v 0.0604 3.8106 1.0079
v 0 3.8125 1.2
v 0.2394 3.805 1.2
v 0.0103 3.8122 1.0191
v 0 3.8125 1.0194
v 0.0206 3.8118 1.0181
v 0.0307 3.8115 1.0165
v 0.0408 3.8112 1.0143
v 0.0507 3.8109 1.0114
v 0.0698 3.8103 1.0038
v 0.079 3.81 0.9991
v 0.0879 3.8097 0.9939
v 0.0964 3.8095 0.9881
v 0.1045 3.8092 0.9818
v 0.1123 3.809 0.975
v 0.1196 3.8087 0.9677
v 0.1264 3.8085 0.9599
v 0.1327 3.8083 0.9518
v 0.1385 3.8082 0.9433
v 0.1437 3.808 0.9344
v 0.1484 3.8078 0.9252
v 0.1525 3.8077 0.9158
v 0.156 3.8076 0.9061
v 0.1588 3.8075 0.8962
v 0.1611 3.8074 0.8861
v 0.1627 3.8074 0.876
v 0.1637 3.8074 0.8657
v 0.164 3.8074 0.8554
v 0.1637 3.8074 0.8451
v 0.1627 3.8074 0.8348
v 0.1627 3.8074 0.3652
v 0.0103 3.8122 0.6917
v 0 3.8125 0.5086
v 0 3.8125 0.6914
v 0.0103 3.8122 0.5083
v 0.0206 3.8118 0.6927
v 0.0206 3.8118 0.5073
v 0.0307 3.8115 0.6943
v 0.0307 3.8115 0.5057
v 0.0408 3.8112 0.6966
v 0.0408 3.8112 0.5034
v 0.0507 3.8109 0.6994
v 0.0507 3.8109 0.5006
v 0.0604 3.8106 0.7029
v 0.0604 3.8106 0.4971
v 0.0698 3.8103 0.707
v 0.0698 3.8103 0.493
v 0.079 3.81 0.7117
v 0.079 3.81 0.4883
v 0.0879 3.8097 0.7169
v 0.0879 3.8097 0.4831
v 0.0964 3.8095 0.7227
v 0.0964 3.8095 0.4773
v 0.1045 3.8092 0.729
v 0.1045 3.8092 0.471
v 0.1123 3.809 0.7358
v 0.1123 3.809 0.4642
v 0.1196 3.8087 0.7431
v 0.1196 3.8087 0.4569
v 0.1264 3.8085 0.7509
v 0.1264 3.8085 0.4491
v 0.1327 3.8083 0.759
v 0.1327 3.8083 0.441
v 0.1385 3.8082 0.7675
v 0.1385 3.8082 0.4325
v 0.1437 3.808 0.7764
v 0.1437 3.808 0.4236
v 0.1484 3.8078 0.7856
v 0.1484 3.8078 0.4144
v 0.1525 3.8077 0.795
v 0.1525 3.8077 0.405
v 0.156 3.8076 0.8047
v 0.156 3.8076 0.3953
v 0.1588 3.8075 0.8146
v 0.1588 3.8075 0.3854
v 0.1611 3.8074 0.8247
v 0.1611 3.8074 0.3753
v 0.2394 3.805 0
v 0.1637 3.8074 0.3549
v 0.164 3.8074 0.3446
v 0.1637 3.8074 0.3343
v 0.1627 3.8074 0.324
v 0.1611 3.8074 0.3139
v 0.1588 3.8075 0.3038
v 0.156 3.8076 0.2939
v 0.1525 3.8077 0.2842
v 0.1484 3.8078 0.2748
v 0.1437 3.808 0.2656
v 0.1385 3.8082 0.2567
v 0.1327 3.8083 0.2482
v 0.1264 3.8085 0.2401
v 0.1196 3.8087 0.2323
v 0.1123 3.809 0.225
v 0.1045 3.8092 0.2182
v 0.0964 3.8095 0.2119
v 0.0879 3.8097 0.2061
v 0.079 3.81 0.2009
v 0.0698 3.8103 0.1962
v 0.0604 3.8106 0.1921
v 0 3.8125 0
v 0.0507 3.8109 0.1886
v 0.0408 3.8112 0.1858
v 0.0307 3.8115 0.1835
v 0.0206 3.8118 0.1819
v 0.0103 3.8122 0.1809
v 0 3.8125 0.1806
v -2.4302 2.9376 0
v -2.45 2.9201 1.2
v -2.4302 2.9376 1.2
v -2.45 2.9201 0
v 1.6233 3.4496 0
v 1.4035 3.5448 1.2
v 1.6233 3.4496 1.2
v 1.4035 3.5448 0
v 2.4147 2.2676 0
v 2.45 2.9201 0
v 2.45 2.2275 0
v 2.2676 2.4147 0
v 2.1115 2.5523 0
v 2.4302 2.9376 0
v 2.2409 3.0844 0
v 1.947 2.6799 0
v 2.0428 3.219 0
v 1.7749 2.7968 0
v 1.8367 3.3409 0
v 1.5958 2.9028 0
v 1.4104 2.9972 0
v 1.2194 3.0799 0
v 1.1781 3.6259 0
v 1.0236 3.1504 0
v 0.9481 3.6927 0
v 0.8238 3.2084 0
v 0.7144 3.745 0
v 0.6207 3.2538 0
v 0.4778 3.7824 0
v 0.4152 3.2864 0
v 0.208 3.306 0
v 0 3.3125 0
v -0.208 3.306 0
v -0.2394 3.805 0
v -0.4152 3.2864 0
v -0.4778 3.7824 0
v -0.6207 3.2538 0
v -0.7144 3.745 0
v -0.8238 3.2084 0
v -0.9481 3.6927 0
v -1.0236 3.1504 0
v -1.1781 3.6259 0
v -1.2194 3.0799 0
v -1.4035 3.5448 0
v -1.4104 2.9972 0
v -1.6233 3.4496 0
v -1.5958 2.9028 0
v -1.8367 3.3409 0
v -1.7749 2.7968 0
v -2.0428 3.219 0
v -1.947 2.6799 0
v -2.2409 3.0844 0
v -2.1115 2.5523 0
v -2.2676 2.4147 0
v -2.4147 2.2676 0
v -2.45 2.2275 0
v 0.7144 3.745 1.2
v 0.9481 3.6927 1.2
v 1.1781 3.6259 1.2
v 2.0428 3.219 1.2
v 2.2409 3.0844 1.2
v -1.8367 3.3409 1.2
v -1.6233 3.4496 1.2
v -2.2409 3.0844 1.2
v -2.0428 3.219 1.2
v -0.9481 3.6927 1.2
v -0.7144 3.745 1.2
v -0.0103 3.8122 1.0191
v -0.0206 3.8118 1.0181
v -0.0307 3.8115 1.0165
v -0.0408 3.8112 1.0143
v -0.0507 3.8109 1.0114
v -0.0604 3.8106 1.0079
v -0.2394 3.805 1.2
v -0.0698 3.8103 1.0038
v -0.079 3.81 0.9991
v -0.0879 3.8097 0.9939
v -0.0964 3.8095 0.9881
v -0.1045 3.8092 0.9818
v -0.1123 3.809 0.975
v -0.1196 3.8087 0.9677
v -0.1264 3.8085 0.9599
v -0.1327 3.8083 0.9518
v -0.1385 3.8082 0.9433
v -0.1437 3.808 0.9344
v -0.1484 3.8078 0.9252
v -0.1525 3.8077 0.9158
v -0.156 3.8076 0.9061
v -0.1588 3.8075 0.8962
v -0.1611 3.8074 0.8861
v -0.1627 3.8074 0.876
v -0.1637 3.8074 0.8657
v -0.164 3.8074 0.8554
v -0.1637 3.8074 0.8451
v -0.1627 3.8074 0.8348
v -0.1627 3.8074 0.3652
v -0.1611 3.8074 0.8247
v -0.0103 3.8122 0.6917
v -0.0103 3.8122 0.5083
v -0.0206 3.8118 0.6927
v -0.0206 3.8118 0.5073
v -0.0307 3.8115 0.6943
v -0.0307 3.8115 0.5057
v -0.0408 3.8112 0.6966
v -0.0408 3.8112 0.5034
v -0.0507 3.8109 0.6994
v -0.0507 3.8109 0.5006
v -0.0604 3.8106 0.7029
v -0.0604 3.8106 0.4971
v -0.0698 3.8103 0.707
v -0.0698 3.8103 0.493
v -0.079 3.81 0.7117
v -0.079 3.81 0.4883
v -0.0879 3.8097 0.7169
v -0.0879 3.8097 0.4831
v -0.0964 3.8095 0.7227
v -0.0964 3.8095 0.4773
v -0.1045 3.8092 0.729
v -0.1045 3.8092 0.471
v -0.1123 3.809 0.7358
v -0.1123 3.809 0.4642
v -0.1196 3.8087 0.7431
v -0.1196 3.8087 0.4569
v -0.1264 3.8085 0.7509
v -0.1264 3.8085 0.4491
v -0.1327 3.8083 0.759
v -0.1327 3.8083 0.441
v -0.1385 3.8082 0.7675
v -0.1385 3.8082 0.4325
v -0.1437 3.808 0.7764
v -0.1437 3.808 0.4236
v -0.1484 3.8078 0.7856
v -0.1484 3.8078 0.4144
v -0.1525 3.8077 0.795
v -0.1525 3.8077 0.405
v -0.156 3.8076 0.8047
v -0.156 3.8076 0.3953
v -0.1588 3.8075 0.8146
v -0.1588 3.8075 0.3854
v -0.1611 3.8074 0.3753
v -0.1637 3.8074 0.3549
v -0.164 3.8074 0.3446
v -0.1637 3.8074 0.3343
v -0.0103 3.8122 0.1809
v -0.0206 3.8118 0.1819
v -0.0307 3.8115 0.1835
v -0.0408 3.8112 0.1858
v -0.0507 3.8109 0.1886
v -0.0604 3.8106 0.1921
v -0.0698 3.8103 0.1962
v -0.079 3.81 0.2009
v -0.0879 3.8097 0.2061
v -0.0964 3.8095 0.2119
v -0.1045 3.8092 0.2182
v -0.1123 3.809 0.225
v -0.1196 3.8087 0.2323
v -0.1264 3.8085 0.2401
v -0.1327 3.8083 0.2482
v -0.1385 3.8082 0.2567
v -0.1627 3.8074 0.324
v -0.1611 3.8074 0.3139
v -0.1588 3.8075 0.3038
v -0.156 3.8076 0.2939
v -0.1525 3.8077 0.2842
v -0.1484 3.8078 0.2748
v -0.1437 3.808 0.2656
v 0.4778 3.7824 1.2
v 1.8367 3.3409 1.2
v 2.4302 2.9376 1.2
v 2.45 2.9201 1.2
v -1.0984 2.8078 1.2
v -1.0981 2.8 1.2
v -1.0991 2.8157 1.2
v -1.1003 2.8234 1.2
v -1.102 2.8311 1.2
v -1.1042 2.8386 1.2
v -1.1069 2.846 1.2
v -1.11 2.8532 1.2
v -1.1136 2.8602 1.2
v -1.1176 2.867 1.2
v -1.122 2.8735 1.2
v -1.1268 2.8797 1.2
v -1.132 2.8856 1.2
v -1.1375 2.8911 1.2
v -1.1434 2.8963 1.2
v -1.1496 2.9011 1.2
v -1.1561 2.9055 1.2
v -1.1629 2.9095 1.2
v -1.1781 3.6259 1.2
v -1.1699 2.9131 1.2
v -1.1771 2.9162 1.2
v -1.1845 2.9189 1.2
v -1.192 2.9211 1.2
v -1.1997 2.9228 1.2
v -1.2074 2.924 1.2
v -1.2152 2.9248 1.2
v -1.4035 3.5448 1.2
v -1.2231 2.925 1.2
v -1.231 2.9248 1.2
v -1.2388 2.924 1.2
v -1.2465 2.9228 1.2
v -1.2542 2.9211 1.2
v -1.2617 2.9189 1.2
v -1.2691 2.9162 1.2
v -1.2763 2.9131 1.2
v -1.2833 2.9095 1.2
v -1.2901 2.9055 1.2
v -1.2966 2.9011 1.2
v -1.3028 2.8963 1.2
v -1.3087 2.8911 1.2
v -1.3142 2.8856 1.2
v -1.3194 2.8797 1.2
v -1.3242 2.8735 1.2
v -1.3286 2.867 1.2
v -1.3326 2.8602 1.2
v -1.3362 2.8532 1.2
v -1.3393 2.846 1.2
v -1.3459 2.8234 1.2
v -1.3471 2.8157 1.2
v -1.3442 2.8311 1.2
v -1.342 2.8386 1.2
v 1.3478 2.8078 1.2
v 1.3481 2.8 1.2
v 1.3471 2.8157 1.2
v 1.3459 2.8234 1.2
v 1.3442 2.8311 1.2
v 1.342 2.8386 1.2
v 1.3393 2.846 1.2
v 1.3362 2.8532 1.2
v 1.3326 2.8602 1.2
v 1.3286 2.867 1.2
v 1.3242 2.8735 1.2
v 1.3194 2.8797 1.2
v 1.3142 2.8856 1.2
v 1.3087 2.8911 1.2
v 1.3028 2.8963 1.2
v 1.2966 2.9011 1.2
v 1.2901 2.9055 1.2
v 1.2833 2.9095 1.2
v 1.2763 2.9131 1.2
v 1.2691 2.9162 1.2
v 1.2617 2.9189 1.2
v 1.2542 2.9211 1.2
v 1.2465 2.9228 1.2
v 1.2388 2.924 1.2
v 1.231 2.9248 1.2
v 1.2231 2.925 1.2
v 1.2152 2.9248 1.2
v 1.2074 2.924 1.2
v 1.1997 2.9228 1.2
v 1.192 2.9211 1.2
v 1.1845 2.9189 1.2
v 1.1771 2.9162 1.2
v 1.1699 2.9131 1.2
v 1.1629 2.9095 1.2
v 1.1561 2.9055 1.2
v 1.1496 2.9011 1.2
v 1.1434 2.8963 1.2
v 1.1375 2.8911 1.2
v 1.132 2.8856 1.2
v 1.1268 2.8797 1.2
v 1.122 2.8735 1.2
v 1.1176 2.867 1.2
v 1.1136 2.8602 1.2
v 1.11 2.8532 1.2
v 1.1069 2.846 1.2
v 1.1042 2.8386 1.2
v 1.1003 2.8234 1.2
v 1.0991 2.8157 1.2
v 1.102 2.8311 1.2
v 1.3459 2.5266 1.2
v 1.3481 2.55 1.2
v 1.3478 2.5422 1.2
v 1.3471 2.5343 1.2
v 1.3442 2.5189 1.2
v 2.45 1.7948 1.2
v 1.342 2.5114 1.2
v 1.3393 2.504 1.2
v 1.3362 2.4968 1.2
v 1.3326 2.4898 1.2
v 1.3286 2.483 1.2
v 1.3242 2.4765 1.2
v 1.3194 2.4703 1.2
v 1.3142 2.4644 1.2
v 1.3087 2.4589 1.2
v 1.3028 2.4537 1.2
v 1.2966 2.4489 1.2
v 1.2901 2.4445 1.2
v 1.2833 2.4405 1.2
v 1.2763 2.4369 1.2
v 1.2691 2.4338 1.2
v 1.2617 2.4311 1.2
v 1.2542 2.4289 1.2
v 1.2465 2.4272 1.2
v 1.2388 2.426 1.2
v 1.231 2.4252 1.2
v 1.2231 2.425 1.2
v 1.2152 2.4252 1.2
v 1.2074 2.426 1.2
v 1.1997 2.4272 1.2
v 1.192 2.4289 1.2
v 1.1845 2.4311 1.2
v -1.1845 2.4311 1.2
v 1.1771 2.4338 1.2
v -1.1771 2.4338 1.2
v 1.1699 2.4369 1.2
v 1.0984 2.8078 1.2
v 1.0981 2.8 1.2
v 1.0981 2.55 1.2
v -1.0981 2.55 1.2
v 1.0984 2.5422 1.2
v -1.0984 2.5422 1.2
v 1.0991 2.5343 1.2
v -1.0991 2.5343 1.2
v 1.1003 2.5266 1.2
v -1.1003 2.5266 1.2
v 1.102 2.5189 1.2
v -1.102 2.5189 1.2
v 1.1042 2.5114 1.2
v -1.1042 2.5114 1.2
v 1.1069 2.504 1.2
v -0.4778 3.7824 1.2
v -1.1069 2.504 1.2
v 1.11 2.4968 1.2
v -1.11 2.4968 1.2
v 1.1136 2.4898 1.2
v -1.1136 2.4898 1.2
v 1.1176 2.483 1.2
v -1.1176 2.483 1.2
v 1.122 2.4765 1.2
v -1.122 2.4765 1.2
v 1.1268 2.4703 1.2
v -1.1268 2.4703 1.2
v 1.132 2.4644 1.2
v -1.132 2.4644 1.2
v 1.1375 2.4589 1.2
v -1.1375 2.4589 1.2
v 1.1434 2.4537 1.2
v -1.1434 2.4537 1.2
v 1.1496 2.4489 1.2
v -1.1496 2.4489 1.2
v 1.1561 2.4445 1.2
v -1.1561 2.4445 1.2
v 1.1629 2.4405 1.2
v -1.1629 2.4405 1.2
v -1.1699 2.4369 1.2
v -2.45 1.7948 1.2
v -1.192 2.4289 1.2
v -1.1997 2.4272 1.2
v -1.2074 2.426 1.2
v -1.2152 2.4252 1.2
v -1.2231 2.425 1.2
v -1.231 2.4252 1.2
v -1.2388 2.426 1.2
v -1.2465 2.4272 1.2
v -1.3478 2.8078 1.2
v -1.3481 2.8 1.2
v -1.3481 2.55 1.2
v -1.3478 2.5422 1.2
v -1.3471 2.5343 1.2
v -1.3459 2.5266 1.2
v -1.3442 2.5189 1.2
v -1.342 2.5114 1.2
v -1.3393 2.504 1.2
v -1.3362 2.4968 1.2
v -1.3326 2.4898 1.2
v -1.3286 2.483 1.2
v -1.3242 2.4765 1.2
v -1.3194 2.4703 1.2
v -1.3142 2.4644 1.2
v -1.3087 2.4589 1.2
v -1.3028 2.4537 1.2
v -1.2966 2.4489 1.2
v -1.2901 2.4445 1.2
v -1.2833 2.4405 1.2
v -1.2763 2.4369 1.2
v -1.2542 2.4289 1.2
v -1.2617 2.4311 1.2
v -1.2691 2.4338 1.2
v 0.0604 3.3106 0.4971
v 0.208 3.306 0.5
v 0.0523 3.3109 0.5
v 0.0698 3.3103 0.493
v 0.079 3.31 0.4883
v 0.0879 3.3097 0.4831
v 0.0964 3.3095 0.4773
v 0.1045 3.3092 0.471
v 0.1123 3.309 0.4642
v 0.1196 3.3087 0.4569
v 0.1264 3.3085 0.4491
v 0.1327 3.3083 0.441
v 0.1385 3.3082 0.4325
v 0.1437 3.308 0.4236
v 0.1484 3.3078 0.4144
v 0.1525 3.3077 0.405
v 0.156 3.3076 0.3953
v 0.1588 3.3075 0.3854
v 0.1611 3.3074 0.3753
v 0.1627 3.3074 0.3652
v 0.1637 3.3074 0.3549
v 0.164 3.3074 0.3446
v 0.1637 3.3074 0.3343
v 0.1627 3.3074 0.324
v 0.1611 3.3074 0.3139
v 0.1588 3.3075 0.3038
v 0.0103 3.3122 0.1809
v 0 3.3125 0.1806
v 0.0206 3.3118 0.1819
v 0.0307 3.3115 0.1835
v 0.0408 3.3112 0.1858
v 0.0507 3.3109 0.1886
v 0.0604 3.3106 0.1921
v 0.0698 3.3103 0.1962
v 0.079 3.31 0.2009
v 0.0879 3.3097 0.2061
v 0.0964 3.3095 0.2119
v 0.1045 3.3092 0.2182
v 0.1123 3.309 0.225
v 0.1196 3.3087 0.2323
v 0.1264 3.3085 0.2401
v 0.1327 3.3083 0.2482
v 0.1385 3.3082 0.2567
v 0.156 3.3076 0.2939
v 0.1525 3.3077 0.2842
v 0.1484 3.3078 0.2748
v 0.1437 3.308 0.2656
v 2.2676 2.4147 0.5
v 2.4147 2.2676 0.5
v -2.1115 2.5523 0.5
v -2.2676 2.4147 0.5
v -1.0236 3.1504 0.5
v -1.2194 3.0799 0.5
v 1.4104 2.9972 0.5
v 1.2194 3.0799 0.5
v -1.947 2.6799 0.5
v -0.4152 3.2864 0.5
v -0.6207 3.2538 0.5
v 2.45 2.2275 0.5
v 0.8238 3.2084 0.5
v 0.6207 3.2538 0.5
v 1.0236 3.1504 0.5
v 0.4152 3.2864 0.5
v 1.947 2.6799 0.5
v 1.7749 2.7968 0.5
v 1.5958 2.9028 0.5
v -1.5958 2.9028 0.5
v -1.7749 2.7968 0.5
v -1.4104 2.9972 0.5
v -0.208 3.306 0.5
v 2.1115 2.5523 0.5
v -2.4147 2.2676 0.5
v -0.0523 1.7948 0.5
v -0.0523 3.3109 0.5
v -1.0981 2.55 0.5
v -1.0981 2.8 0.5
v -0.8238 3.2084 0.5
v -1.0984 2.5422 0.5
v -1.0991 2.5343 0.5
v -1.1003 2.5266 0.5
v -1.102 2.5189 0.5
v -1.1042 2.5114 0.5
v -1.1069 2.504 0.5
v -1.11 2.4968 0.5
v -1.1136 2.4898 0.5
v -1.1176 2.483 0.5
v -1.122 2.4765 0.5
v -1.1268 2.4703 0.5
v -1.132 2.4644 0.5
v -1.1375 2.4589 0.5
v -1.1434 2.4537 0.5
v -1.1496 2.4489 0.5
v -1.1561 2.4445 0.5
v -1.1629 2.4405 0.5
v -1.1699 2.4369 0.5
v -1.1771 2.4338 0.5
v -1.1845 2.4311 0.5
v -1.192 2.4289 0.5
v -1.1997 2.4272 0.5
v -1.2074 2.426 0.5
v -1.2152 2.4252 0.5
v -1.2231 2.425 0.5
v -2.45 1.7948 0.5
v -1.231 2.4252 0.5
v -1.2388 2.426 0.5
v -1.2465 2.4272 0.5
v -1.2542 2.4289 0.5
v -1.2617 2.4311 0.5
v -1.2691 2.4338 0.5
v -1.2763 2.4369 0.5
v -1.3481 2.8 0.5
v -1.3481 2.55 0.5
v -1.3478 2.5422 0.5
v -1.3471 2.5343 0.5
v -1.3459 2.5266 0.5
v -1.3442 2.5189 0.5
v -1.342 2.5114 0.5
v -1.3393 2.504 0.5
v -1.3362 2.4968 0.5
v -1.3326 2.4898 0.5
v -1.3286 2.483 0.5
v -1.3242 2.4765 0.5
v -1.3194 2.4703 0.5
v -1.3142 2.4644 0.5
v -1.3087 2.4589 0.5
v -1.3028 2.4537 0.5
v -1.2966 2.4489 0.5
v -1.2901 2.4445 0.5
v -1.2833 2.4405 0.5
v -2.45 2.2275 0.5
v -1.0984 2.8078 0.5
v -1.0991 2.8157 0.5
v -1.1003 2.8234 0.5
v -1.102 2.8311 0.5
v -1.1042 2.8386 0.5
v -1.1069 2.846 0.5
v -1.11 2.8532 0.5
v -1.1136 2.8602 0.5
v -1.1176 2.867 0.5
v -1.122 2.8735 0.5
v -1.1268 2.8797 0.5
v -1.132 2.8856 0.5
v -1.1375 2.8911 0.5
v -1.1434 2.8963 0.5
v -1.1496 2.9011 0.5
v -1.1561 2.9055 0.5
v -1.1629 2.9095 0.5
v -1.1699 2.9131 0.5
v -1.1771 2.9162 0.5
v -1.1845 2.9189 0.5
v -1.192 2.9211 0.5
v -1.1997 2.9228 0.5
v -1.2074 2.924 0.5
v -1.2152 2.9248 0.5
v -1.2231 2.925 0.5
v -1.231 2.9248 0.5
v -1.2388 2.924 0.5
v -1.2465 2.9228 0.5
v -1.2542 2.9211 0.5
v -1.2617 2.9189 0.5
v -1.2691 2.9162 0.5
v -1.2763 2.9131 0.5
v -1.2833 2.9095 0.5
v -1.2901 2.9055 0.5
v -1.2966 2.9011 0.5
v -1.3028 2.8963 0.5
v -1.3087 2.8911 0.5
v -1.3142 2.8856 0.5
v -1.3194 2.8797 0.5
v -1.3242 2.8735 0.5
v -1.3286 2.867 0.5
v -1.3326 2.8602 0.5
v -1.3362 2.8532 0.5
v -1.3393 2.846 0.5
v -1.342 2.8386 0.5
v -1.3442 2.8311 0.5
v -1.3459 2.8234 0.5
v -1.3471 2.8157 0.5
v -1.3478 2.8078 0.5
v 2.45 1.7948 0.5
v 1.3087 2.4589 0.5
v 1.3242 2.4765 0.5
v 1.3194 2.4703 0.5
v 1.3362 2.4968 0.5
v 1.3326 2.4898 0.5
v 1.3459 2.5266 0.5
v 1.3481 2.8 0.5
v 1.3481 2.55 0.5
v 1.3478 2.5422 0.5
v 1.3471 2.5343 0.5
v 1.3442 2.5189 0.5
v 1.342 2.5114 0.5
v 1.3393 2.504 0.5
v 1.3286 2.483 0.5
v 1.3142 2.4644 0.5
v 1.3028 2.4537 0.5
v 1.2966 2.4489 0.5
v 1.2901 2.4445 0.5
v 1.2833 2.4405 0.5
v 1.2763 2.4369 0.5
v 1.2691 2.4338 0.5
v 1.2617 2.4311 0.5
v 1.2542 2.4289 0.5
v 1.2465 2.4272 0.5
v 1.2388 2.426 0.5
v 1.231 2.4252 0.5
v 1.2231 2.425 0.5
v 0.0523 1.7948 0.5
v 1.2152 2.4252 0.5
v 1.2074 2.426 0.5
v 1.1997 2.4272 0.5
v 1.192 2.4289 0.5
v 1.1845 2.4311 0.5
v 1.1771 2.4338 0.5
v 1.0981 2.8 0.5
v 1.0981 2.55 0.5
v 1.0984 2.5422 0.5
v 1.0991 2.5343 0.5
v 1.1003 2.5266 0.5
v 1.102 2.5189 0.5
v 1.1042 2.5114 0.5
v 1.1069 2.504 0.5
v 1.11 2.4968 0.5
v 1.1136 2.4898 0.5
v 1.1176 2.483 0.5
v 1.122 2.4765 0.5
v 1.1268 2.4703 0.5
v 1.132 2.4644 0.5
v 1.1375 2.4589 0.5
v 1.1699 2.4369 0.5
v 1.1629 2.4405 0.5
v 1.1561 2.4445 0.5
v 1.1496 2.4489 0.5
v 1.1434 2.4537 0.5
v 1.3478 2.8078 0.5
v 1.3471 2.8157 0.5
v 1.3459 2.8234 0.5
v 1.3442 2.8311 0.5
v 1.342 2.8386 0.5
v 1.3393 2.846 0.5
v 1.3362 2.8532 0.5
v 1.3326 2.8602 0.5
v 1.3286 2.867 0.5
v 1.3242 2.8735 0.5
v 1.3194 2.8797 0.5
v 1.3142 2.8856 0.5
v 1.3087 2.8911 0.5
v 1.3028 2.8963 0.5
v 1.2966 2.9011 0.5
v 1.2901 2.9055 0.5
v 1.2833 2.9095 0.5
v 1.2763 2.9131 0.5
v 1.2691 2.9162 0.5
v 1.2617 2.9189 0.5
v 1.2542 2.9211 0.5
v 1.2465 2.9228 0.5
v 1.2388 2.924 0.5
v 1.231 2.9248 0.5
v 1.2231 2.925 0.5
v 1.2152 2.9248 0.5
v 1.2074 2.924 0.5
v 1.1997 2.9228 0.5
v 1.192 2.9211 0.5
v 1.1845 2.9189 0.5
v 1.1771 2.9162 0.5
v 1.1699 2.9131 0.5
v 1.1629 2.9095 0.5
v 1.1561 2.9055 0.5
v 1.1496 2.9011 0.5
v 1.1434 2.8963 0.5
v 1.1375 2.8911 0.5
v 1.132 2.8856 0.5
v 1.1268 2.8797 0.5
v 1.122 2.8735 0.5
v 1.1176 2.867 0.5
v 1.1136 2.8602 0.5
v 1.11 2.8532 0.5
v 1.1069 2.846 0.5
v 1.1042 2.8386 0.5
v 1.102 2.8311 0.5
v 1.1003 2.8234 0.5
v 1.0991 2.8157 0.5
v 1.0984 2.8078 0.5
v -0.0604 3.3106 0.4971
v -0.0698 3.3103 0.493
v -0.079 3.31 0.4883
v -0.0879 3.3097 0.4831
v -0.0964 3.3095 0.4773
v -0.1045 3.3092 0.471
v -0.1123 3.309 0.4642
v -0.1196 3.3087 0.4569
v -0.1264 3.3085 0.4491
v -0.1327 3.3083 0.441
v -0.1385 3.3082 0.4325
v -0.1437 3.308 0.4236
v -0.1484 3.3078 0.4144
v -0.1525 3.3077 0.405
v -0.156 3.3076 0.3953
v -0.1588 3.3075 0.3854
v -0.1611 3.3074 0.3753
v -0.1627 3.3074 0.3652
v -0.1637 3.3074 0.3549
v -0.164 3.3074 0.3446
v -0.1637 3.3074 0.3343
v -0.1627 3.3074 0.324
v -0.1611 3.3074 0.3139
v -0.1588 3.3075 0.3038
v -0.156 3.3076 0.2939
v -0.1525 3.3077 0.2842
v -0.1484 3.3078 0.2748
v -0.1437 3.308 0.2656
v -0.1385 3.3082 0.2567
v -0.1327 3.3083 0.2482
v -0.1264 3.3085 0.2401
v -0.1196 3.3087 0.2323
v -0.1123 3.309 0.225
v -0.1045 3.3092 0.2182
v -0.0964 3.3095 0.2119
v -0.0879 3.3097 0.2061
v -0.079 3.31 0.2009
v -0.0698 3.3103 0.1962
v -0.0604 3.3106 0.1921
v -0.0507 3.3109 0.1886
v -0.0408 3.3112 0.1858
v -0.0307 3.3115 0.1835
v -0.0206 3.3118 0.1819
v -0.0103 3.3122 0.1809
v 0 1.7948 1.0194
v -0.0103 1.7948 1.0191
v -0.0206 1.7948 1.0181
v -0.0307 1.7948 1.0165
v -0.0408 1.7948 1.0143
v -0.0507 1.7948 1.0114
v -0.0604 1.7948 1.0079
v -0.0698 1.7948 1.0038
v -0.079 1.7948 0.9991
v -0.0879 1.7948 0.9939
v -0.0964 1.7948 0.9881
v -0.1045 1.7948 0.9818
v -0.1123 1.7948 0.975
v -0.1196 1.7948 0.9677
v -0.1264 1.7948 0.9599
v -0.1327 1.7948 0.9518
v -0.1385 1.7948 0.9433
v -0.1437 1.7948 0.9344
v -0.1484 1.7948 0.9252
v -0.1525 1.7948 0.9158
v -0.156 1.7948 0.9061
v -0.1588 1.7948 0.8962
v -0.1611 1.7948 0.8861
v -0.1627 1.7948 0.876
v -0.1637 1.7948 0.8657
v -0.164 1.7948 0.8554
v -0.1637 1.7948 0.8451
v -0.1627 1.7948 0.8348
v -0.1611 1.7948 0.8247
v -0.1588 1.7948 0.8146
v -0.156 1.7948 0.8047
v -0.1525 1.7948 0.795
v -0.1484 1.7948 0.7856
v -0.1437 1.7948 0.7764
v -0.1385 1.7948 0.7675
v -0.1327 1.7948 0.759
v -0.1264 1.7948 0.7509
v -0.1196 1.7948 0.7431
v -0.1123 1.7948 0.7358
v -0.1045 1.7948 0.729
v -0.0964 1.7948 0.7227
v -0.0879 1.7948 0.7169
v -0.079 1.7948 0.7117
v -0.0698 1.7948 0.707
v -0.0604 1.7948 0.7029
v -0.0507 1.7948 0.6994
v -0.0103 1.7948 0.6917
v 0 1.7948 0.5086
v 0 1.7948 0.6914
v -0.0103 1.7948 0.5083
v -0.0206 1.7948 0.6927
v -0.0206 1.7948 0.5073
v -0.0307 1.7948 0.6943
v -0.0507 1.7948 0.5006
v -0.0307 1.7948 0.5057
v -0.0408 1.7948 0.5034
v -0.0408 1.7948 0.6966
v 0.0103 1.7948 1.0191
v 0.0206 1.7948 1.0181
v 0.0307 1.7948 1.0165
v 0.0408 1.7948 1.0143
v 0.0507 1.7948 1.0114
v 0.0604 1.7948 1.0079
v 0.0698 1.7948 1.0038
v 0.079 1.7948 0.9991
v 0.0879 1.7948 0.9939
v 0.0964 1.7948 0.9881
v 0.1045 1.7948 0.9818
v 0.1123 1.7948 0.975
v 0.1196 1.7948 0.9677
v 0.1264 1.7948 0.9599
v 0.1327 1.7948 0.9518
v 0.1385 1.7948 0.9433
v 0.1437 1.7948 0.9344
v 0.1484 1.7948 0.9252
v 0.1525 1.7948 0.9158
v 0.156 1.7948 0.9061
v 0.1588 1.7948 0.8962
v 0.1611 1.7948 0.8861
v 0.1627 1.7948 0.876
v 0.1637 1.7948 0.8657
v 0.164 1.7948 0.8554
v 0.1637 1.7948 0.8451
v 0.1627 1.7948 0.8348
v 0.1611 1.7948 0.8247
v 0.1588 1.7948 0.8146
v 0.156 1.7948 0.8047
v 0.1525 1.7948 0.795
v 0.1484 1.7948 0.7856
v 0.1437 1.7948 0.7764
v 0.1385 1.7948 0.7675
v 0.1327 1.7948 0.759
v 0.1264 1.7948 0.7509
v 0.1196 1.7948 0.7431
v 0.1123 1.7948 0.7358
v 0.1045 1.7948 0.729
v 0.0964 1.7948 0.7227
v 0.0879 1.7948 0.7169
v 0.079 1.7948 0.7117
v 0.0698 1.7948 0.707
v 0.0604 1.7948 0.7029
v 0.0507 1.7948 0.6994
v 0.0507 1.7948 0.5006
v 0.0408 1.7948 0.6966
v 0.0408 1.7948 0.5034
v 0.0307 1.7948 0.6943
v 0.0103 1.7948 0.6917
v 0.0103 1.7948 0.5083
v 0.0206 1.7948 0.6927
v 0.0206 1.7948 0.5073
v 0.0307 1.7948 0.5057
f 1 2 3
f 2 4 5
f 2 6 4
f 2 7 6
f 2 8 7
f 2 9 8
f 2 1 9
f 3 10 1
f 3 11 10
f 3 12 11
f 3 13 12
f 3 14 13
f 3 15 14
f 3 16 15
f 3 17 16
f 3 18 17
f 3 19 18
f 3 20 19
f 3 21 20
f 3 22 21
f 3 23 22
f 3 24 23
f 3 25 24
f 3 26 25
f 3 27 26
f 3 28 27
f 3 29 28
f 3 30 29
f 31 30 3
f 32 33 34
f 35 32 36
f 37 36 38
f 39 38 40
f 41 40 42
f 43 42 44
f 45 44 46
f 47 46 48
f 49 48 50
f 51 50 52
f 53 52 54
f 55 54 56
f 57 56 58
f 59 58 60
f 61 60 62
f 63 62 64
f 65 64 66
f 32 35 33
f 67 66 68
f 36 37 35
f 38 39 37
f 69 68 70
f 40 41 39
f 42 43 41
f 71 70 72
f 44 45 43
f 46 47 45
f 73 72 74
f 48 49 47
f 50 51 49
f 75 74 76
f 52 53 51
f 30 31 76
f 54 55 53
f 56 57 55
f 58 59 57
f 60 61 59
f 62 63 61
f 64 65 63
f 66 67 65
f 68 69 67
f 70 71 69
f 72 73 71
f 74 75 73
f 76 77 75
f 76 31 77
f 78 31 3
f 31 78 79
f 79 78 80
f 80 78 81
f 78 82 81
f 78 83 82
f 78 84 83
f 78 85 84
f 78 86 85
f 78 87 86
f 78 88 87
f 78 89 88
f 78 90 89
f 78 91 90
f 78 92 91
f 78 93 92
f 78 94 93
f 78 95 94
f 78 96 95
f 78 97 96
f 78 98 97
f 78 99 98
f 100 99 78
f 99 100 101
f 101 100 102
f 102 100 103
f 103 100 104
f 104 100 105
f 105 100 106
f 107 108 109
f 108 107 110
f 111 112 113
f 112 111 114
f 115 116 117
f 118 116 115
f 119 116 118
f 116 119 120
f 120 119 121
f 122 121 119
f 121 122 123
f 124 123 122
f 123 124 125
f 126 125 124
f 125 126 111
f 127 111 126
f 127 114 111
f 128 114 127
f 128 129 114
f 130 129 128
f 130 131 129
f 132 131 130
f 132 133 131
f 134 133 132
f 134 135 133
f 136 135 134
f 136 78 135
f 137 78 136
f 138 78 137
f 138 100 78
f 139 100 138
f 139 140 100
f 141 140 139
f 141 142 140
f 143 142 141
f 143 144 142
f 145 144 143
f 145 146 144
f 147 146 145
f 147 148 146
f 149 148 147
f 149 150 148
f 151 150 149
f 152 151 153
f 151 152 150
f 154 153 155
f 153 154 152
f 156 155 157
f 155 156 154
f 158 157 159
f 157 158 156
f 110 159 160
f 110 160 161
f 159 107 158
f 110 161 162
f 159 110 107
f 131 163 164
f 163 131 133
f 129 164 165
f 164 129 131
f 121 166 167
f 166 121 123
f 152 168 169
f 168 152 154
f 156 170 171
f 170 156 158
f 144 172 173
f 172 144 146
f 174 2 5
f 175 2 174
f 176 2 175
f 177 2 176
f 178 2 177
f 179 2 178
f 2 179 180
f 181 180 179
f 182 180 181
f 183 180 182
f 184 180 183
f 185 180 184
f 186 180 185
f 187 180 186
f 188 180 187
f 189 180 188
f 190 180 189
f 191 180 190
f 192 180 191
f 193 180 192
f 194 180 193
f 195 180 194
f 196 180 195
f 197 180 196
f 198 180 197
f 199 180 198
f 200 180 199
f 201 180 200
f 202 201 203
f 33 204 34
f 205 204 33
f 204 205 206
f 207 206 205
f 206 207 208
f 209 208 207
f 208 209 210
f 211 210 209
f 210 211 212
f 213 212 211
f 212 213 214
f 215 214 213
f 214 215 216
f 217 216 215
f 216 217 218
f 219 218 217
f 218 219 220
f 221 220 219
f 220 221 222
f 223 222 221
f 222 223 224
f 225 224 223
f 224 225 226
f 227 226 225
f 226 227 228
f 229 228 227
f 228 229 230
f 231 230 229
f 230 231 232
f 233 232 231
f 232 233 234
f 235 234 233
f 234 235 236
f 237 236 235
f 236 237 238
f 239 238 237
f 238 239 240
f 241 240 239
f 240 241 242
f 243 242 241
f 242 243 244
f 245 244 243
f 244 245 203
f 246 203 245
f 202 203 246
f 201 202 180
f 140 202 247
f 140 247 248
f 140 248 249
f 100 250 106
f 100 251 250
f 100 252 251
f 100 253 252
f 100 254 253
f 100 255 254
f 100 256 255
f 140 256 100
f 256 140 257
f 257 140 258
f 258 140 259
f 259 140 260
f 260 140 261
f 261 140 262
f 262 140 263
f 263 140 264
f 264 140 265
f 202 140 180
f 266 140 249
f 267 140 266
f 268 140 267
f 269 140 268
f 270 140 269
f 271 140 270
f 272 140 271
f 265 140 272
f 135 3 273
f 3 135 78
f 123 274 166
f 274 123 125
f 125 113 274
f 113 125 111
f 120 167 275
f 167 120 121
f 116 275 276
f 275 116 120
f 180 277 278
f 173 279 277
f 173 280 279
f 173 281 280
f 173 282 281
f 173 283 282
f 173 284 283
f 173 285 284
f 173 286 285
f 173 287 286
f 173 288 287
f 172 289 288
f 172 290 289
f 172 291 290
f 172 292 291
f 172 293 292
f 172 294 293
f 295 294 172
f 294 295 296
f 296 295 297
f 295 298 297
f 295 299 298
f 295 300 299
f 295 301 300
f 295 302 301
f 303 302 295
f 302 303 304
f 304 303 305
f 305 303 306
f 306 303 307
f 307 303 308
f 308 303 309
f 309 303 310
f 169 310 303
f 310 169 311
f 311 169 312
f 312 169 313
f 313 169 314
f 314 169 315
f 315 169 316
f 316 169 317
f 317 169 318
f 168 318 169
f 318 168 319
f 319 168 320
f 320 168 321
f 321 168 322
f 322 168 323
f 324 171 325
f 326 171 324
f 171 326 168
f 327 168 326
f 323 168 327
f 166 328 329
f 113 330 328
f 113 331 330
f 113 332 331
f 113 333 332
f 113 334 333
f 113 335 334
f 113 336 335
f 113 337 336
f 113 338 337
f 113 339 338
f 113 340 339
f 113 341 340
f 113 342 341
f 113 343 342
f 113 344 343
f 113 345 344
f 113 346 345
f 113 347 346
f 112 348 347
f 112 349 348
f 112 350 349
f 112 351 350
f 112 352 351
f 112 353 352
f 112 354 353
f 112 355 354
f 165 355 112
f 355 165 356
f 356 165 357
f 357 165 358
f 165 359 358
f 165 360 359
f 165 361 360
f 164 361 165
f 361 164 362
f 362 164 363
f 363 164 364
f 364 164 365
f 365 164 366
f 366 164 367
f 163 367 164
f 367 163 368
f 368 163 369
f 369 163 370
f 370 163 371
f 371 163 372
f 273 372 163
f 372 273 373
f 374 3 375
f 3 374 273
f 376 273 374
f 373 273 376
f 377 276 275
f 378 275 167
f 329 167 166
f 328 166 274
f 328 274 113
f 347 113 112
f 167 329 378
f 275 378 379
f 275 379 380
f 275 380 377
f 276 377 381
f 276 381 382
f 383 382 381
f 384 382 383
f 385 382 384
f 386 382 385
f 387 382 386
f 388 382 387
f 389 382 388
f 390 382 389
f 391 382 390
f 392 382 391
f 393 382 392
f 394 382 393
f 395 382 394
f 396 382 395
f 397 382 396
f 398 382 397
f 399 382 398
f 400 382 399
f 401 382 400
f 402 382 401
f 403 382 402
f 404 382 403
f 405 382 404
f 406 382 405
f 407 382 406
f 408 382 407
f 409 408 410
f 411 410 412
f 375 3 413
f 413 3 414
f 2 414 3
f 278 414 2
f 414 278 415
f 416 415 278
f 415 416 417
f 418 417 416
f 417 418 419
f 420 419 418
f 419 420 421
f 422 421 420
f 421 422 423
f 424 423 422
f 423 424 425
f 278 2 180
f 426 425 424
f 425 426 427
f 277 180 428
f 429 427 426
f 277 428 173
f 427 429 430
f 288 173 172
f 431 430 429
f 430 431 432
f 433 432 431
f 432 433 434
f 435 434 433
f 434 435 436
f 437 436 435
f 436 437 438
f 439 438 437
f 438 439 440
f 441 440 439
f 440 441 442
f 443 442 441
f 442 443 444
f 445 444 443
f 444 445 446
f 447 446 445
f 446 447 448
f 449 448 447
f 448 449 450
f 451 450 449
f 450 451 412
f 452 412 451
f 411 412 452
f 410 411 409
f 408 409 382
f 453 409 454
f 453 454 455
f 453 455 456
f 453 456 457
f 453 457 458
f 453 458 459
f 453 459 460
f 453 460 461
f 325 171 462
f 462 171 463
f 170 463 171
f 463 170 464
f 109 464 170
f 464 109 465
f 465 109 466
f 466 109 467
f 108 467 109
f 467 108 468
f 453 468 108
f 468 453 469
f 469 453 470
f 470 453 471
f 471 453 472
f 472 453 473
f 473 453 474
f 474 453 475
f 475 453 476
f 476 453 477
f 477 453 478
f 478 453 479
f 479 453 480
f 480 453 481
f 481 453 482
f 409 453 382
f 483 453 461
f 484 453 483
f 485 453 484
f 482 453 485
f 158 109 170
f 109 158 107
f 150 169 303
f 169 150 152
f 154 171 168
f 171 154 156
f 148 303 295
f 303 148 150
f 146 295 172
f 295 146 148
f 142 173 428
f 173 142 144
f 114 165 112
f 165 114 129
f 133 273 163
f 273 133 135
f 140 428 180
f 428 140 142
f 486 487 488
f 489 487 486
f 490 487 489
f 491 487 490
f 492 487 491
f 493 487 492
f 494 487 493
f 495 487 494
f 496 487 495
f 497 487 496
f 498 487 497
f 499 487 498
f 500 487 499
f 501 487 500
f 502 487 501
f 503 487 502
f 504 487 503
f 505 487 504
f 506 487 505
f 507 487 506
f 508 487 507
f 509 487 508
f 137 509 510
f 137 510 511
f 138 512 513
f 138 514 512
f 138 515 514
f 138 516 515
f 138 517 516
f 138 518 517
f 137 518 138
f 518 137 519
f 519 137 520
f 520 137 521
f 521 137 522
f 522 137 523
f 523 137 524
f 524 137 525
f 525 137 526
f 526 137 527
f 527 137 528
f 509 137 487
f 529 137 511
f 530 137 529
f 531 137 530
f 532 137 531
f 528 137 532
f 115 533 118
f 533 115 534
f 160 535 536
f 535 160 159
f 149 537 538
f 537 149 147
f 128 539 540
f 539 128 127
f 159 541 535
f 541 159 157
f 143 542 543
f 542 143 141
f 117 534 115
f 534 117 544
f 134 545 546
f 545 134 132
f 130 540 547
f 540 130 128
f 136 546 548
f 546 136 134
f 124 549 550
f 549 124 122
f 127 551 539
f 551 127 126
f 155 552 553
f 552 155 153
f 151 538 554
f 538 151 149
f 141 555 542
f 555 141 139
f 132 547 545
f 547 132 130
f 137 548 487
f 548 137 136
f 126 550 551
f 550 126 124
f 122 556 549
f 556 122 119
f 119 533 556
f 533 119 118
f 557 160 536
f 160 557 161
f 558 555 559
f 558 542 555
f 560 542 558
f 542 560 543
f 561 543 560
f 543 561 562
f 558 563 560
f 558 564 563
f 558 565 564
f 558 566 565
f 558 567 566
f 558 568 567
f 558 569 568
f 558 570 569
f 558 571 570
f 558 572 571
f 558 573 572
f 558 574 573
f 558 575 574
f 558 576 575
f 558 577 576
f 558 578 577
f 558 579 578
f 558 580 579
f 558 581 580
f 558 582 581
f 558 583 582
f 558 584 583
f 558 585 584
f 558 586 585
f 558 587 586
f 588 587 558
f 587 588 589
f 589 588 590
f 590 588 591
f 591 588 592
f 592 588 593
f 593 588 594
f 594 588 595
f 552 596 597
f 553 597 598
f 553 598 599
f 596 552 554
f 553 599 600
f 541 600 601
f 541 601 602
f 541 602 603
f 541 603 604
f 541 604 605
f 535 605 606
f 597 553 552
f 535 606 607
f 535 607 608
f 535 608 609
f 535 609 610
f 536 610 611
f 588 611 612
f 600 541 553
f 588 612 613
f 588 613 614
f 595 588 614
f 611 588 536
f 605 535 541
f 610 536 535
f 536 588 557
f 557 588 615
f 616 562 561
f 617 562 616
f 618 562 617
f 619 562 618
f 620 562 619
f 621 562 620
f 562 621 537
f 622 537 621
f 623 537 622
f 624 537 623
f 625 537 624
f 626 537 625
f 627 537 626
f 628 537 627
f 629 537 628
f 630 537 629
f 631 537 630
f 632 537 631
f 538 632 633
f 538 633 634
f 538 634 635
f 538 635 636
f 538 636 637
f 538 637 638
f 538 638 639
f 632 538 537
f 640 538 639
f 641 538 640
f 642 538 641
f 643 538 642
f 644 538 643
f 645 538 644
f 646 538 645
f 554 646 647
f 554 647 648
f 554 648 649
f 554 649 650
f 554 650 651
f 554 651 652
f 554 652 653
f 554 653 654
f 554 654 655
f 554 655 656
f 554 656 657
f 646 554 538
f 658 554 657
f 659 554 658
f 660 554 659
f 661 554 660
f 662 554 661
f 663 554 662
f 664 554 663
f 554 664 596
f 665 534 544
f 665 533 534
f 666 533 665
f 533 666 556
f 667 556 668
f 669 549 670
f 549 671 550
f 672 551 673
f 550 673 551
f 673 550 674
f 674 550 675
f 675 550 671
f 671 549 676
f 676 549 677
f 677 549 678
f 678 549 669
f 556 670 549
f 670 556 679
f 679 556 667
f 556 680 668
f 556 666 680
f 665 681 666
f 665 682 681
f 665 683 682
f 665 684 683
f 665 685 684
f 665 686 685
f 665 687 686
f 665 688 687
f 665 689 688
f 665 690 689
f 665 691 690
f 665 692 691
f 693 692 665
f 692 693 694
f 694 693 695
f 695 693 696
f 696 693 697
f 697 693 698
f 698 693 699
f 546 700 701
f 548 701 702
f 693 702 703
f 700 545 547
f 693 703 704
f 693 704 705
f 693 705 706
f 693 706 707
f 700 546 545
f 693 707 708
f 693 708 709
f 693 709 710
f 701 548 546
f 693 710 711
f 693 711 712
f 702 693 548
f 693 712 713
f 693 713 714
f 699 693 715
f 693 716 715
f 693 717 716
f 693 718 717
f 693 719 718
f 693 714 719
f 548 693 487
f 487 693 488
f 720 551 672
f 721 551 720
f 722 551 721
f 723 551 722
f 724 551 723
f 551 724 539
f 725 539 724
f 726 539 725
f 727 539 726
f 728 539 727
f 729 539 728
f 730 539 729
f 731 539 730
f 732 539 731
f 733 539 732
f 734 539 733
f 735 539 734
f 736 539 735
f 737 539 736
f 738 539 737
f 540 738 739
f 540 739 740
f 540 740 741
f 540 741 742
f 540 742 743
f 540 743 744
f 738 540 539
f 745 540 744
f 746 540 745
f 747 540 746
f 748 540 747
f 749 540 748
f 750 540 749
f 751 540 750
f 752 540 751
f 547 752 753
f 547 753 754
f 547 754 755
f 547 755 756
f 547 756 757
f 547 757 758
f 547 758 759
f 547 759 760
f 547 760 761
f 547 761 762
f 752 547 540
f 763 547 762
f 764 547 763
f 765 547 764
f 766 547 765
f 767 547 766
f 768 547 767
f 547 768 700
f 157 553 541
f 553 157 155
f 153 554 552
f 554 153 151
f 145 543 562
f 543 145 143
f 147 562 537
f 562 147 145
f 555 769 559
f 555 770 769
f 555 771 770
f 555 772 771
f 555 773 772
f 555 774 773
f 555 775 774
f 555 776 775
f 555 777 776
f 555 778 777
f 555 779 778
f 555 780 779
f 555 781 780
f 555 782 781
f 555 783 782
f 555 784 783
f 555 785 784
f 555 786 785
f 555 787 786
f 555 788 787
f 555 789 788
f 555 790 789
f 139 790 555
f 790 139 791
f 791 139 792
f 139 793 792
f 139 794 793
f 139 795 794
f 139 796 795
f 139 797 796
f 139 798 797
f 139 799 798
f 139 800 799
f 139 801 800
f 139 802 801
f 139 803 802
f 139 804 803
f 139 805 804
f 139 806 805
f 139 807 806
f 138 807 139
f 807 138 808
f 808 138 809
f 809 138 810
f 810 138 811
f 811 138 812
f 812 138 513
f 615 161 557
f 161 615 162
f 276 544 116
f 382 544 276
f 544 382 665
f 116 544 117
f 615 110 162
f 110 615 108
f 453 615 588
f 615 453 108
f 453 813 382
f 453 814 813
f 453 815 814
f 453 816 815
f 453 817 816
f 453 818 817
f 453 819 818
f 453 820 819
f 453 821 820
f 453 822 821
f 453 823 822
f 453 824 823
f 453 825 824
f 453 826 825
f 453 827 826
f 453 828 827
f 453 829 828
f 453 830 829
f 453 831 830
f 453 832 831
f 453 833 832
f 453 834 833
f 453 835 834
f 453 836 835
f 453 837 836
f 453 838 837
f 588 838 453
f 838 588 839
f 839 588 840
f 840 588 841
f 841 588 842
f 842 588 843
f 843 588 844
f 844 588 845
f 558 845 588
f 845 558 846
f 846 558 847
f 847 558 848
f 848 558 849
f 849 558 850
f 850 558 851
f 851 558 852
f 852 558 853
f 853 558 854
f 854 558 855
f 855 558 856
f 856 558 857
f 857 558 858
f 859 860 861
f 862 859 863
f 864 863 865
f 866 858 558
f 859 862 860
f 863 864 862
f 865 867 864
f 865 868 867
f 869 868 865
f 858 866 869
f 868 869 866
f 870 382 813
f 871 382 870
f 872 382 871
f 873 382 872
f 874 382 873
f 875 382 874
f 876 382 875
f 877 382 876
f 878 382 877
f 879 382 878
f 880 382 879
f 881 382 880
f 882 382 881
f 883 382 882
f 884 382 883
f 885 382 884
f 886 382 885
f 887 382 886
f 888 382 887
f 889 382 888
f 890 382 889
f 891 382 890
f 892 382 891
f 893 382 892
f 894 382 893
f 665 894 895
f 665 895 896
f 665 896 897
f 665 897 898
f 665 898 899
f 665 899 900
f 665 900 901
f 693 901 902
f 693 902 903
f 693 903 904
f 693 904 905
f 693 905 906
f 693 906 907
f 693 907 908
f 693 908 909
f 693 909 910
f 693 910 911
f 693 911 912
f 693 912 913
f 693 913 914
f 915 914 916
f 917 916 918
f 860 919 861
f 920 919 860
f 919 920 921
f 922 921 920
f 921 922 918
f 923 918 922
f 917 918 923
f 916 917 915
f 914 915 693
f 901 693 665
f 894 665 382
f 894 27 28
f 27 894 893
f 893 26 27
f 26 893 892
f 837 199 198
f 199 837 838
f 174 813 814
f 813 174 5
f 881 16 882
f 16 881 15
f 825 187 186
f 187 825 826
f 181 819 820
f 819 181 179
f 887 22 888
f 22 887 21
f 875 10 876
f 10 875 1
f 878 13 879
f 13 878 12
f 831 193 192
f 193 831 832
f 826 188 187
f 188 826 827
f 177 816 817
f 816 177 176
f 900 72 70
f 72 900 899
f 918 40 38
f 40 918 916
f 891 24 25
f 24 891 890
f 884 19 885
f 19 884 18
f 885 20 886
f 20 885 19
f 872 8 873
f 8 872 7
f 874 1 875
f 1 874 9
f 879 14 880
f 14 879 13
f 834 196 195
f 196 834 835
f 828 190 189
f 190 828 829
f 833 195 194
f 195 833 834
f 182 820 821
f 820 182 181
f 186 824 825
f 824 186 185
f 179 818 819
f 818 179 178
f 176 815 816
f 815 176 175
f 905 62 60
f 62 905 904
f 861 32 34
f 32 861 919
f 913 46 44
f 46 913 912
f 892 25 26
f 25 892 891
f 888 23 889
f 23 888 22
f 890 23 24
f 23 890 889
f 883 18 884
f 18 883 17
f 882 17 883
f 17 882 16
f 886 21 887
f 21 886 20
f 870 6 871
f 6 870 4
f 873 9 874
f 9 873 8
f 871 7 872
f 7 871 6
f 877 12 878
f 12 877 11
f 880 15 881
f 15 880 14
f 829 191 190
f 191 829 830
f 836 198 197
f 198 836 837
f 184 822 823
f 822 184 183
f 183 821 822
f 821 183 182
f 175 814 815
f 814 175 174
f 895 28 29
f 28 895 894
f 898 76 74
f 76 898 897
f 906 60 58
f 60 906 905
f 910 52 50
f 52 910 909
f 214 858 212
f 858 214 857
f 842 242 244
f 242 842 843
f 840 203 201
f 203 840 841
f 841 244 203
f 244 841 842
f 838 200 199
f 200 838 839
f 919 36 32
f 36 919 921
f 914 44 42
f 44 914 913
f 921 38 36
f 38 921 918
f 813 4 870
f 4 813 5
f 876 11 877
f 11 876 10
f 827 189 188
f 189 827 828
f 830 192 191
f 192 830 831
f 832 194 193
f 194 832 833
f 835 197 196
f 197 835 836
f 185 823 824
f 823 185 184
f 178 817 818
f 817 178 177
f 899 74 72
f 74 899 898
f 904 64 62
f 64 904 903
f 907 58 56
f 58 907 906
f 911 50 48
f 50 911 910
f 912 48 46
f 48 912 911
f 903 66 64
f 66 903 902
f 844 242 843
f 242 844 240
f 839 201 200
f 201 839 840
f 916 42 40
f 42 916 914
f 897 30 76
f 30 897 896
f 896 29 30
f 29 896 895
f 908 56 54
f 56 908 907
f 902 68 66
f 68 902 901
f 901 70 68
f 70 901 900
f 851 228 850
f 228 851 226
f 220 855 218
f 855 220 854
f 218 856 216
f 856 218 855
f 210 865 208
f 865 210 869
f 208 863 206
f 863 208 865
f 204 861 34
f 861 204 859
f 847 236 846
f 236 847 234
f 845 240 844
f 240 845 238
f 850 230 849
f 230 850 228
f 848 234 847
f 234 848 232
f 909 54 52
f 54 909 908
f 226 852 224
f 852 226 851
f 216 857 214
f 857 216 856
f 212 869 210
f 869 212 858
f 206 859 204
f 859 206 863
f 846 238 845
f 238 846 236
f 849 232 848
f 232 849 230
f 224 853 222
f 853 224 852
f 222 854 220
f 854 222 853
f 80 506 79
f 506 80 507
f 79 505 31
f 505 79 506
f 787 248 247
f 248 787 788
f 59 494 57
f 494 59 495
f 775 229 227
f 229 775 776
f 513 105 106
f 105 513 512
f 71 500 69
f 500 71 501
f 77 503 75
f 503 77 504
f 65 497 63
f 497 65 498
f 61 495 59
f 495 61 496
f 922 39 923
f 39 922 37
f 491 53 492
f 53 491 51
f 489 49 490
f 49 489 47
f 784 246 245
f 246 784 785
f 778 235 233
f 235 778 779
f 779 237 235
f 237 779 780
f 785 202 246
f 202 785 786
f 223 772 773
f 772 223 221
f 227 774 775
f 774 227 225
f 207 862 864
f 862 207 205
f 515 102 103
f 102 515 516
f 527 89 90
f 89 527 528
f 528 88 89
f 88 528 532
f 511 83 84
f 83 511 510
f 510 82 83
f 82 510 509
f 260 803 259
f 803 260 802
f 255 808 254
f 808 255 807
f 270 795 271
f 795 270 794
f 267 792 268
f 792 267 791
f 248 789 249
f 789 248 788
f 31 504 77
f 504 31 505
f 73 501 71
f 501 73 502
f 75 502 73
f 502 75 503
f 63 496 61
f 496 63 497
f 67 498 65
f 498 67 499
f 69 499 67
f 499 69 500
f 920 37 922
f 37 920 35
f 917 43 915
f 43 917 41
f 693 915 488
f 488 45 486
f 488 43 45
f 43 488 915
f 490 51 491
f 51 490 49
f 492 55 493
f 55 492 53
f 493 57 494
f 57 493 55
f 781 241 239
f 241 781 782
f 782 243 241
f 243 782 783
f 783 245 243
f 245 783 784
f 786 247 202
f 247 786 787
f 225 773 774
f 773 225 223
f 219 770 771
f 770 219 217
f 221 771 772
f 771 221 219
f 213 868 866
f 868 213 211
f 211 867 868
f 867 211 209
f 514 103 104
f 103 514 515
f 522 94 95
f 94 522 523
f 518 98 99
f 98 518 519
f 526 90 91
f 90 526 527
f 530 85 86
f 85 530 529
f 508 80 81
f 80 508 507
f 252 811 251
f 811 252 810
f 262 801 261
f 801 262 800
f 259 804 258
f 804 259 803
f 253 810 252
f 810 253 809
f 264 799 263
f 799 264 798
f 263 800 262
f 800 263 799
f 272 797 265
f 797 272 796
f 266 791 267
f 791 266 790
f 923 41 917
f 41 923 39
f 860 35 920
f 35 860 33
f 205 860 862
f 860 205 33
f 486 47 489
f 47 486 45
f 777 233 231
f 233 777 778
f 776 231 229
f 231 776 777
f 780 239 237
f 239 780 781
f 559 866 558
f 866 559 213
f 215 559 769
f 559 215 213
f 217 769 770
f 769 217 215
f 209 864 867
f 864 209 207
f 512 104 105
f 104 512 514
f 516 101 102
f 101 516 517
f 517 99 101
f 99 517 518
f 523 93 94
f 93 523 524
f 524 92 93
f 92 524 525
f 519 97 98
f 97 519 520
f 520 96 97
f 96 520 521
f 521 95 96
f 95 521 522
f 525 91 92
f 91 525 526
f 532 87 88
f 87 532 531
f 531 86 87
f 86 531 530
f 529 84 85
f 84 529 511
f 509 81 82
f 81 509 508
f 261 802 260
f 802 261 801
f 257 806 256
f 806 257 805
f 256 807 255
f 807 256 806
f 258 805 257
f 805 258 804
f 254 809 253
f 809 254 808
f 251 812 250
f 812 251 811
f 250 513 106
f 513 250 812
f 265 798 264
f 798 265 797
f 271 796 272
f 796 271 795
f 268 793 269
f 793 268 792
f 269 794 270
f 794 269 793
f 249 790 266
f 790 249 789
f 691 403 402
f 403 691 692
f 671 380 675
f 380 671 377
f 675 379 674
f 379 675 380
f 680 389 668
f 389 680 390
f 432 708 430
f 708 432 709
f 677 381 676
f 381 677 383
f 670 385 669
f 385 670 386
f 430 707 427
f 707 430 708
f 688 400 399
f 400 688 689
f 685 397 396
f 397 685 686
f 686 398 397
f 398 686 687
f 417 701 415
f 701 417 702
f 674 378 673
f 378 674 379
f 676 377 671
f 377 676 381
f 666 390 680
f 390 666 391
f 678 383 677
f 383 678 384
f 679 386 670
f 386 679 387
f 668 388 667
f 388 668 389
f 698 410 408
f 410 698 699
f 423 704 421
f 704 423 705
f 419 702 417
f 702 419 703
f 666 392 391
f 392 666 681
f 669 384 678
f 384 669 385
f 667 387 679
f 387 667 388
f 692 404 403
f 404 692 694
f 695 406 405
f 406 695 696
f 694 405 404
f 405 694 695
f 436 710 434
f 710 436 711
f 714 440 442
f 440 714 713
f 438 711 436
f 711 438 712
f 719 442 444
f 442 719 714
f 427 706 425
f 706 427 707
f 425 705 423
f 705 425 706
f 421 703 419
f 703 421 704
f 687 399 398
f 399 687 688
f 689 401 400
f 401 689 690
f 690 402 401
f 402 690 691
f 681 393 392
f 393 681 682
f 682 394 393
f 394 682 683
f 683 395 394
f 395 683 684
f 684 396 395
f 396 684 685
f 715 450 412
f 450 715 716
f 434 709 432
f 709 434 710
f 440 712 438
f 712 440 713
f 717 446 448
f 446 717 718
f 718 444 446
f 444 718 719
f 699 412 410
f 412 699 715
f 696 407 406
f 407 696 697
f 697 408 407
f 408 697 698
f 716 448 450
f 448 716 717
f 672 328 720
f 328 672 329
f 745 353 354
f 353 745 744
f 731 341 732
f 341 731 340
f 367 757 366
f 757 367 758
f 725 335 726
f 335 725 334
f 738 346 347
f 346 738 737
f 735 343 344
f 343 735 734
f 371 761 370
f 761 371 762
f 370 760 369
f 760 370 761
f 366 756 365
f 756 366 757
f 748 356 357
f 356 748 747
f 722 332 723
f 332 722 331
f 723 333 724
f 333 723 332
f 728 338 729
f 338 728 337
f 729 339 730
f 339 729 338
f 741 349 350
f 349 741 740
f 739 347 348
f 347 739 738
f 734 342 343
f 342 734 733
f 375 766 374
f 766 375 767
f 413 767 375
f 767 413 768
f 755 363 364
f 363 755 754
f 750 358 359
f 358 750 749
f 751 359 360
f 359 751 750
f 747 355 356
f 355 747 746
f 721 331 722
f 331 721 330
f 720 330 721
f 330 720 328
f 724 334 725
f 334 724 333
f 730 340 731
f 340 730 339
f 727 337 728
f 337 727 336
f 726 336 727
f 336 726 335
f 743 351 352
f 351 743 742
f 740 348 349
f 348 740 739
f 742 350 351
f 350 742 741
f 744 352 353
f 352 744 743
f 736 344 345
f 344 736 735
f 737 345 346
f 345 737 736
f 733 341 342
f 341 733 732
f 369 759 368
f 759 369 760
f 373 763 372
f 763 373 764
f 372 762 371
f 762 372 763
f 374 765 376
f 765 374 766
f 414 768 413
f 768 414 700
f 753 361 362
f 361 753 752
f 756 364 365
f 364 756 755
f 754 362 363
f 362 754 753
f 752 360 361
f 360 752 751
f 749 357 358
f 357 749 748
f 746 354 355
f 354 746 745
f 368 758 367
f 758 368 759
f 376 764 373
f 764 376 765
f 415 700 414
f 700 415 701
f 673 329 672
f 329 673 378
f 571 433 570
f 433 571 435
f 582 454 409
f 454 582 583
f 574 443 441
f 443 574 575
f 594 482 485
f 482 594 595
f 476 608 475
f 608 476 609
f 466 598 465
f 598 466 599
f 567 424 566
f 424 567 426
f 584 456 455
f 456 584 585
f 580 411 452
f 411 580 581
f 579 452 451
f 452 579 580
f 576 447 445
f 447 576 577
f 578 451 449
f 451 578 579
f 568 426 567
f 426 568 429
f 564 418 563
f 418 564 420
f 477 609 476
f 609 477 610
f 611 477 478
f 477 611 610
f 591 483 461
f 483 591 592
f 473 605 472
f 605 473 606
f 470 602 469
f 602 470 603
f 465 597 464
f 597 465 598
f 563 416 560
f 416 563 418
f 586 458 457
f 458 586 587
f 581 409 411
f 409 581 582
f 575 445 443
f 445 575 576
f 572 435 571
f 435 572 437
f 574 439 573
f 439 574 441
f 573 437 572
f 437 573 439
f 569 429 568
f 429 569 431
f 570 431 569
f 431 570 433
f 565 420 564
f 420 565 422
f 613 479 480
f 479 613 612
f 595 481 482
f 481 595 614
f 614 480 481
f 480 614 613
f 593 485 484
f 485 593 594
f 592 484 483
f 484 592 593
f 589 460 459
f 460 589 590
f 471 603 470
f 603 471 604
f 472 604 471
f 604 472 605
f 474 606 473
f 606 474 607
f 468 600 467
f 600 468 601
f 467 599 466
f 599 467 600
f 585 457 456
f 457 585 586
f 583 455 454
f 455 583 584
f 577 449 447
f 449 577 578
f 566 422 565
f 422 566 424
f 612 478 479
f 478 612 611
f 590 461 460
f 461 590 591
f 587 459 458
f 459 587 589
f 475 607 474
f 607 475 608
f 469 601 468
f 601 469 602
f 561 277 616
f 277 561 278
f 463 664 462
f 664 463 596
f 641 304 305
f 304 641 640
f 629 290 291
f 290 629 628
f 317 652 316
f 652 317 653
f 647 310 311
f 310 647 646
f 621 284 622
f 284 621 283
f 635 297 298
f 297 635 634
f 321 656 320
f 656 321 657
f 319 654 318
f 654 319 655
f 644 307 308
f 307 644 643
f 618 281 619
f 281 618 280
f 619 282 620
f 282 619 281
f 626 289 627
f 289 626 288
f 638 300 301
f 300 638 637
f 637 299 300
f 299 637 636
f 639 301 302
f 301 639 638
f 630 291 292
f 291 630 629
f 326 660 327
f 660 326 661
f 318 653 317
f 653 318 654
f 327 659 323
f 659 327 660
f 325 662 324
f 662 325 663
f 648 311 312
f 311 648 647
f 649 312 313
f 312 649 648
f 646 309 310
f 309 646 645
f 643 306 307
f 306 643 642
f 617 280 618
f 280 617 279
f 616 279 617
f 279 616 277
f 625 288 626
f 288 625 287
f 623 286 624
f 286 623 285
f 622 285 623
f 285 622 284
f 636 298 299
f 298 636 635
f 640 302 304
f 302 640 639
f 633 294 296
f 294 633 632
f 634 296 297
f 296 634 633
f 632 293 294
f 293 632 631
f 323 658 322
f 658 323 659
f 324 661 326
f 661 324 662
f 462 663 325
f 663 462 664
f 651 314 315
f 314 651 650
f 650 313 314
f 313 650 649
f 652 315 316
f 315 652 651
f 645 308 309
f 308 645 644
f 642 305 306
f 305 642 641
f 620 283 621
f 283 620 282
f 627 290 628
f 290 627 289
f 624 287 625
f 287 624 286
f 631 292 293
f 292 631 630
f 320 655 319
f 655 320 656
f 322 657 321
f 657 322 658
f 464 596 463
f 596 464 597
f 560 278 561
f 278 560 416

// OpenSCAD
/*

    aim_platform_up.scad is the code to generate the 3D upper platform for
    the Pro-aim adjustable wedge.
    
    Copyright (C) 2019  C.Y. Tan
    Contact: cytan299@yahoo.com

    This file is part of the aiming device distribution

    aim_platform_up.scad is free software: you can redistribute it
    and/or modify it under the terms of the GNU General Public License
    as published by the Free Software Foundation, either version 3 of
    the License, or (at your option) any later version.

    aim_platform_up.scad is distributed in the hope that it will be
    useful, but WITHOUT ANY WARRANTY; without even the implied
    warranty of MERCHANTABILITY or FITNESS FOR A PARTICULAR PURPOSE.
    See the GNU General Public License for more details.

    You should have received a copy of the GNU General Public License
    along with aim_platform_up.scad.  If not, see
    <http://www.gnu.org/licenses/>.

*/

$fn=100;

mm2inch = 1/25.4;

// dimensions are in inches

// constants

// cylindrical wall
OUTER_R = 3.8125;
INNER_R = 3.3125;
WALL_H = 0.7+0.5;
DH = 0.7;

// the size of the PROAIM device
A_L = 8.25;
A_W = 4.9;

//screw holes

// hole on the wall
SCREW_R16 = 0.328/2.0; // average radius of hole for thermal 1/4-20 threaded insert
SCREW_R16_AZ = 0.8554; // aiming hole
SCREW_R16_Z = 0.3446;  // hole for threaded insert


// slots on the base
SCREW_R4 = 0.25/2.0; // 1/4" hole
SCREW_R4_X = 1.2231;
SCREW_R4_Y = 2.55;

SCREW_R4_Xa = 1.2231; // 1/4" hole
SCREW_R4_Ya = 2.8;

SL_X = 1.2231; // and then the square part
SL_Y = 2.675;


module make_base()
{
  difference(){
    // round part of the wall
    cylinder(h = WALL_H, r = OUTER_R);
    
    translate([0, 0, -DH]){
      cylinder(h = WALL_H, r = INNER_R);
    }


    // trim off the sides
    L = 10;
    translate([A_W/2, -L/2, -L/2]){
      cube(L, center=false);
    }

    translate([-L-A_W/2, -L/2, -L/2]){
      cube(L, center=false);
    }

    // and then remove the bottom rounds
    translate([-L/2, -L+1.7948, -L/2]){
      cube(L, center=false);
    }

  }
}



difference(){
  // make the solid parts first
  make_base();

  // then make the screw holes
  
  // the aiming hole on the wall
  translate([0,0,SCREW_R16_AZ]){
    rotate([90,0,0]){
      cylinder(h=10, r=SCREW_R16, center=true);
    }
  }

  // the threaded hole on the wall
  translate([0,0,SCREW_R16_Z]){
    rotate([90,0,0]){
      cylinder(h=10, r=SCREW_R16, center=true);
    }
  }

  // the slot on the base (right side)
  // make the holes of the slot first
  translate([SCREW_R4_X, SCREW_R4_Y, 0]){
    cylinder(h=10, r=SCREW_R4, center=true);
  }
  translate([SCREW_R4_Xa, SCREW_R4_Ya, 0]){
    cylinder(h=10, r=SCREW_R4, center=true);
  }
  // and then the straight part of the slot
  translate([SL_X, SL_Y, 0]){
    cube([2*SCREW_R4, 2*SCREW_R4, 10], true);
  }

  // the slot on the base (left side)
  // make the holes of the slot first
  translate([-SCREW_R4_X, SCREW_R4_Y, 0]){
    cylinder(h=10, r=SCREW_R4, center=true);
  }
  translate([-SCREW_R4_Xa, SCREW_R4_Ya, 0]){
    cylinder(h=10, r=SCREW_R4, center=true);
  }    
  // and then the straight part of the slot
  translate([-SL_X, SL_Y, 0]){
    cube([2*SCREW_R4, 2*SCREW_R4, 10], true);
  }

}
